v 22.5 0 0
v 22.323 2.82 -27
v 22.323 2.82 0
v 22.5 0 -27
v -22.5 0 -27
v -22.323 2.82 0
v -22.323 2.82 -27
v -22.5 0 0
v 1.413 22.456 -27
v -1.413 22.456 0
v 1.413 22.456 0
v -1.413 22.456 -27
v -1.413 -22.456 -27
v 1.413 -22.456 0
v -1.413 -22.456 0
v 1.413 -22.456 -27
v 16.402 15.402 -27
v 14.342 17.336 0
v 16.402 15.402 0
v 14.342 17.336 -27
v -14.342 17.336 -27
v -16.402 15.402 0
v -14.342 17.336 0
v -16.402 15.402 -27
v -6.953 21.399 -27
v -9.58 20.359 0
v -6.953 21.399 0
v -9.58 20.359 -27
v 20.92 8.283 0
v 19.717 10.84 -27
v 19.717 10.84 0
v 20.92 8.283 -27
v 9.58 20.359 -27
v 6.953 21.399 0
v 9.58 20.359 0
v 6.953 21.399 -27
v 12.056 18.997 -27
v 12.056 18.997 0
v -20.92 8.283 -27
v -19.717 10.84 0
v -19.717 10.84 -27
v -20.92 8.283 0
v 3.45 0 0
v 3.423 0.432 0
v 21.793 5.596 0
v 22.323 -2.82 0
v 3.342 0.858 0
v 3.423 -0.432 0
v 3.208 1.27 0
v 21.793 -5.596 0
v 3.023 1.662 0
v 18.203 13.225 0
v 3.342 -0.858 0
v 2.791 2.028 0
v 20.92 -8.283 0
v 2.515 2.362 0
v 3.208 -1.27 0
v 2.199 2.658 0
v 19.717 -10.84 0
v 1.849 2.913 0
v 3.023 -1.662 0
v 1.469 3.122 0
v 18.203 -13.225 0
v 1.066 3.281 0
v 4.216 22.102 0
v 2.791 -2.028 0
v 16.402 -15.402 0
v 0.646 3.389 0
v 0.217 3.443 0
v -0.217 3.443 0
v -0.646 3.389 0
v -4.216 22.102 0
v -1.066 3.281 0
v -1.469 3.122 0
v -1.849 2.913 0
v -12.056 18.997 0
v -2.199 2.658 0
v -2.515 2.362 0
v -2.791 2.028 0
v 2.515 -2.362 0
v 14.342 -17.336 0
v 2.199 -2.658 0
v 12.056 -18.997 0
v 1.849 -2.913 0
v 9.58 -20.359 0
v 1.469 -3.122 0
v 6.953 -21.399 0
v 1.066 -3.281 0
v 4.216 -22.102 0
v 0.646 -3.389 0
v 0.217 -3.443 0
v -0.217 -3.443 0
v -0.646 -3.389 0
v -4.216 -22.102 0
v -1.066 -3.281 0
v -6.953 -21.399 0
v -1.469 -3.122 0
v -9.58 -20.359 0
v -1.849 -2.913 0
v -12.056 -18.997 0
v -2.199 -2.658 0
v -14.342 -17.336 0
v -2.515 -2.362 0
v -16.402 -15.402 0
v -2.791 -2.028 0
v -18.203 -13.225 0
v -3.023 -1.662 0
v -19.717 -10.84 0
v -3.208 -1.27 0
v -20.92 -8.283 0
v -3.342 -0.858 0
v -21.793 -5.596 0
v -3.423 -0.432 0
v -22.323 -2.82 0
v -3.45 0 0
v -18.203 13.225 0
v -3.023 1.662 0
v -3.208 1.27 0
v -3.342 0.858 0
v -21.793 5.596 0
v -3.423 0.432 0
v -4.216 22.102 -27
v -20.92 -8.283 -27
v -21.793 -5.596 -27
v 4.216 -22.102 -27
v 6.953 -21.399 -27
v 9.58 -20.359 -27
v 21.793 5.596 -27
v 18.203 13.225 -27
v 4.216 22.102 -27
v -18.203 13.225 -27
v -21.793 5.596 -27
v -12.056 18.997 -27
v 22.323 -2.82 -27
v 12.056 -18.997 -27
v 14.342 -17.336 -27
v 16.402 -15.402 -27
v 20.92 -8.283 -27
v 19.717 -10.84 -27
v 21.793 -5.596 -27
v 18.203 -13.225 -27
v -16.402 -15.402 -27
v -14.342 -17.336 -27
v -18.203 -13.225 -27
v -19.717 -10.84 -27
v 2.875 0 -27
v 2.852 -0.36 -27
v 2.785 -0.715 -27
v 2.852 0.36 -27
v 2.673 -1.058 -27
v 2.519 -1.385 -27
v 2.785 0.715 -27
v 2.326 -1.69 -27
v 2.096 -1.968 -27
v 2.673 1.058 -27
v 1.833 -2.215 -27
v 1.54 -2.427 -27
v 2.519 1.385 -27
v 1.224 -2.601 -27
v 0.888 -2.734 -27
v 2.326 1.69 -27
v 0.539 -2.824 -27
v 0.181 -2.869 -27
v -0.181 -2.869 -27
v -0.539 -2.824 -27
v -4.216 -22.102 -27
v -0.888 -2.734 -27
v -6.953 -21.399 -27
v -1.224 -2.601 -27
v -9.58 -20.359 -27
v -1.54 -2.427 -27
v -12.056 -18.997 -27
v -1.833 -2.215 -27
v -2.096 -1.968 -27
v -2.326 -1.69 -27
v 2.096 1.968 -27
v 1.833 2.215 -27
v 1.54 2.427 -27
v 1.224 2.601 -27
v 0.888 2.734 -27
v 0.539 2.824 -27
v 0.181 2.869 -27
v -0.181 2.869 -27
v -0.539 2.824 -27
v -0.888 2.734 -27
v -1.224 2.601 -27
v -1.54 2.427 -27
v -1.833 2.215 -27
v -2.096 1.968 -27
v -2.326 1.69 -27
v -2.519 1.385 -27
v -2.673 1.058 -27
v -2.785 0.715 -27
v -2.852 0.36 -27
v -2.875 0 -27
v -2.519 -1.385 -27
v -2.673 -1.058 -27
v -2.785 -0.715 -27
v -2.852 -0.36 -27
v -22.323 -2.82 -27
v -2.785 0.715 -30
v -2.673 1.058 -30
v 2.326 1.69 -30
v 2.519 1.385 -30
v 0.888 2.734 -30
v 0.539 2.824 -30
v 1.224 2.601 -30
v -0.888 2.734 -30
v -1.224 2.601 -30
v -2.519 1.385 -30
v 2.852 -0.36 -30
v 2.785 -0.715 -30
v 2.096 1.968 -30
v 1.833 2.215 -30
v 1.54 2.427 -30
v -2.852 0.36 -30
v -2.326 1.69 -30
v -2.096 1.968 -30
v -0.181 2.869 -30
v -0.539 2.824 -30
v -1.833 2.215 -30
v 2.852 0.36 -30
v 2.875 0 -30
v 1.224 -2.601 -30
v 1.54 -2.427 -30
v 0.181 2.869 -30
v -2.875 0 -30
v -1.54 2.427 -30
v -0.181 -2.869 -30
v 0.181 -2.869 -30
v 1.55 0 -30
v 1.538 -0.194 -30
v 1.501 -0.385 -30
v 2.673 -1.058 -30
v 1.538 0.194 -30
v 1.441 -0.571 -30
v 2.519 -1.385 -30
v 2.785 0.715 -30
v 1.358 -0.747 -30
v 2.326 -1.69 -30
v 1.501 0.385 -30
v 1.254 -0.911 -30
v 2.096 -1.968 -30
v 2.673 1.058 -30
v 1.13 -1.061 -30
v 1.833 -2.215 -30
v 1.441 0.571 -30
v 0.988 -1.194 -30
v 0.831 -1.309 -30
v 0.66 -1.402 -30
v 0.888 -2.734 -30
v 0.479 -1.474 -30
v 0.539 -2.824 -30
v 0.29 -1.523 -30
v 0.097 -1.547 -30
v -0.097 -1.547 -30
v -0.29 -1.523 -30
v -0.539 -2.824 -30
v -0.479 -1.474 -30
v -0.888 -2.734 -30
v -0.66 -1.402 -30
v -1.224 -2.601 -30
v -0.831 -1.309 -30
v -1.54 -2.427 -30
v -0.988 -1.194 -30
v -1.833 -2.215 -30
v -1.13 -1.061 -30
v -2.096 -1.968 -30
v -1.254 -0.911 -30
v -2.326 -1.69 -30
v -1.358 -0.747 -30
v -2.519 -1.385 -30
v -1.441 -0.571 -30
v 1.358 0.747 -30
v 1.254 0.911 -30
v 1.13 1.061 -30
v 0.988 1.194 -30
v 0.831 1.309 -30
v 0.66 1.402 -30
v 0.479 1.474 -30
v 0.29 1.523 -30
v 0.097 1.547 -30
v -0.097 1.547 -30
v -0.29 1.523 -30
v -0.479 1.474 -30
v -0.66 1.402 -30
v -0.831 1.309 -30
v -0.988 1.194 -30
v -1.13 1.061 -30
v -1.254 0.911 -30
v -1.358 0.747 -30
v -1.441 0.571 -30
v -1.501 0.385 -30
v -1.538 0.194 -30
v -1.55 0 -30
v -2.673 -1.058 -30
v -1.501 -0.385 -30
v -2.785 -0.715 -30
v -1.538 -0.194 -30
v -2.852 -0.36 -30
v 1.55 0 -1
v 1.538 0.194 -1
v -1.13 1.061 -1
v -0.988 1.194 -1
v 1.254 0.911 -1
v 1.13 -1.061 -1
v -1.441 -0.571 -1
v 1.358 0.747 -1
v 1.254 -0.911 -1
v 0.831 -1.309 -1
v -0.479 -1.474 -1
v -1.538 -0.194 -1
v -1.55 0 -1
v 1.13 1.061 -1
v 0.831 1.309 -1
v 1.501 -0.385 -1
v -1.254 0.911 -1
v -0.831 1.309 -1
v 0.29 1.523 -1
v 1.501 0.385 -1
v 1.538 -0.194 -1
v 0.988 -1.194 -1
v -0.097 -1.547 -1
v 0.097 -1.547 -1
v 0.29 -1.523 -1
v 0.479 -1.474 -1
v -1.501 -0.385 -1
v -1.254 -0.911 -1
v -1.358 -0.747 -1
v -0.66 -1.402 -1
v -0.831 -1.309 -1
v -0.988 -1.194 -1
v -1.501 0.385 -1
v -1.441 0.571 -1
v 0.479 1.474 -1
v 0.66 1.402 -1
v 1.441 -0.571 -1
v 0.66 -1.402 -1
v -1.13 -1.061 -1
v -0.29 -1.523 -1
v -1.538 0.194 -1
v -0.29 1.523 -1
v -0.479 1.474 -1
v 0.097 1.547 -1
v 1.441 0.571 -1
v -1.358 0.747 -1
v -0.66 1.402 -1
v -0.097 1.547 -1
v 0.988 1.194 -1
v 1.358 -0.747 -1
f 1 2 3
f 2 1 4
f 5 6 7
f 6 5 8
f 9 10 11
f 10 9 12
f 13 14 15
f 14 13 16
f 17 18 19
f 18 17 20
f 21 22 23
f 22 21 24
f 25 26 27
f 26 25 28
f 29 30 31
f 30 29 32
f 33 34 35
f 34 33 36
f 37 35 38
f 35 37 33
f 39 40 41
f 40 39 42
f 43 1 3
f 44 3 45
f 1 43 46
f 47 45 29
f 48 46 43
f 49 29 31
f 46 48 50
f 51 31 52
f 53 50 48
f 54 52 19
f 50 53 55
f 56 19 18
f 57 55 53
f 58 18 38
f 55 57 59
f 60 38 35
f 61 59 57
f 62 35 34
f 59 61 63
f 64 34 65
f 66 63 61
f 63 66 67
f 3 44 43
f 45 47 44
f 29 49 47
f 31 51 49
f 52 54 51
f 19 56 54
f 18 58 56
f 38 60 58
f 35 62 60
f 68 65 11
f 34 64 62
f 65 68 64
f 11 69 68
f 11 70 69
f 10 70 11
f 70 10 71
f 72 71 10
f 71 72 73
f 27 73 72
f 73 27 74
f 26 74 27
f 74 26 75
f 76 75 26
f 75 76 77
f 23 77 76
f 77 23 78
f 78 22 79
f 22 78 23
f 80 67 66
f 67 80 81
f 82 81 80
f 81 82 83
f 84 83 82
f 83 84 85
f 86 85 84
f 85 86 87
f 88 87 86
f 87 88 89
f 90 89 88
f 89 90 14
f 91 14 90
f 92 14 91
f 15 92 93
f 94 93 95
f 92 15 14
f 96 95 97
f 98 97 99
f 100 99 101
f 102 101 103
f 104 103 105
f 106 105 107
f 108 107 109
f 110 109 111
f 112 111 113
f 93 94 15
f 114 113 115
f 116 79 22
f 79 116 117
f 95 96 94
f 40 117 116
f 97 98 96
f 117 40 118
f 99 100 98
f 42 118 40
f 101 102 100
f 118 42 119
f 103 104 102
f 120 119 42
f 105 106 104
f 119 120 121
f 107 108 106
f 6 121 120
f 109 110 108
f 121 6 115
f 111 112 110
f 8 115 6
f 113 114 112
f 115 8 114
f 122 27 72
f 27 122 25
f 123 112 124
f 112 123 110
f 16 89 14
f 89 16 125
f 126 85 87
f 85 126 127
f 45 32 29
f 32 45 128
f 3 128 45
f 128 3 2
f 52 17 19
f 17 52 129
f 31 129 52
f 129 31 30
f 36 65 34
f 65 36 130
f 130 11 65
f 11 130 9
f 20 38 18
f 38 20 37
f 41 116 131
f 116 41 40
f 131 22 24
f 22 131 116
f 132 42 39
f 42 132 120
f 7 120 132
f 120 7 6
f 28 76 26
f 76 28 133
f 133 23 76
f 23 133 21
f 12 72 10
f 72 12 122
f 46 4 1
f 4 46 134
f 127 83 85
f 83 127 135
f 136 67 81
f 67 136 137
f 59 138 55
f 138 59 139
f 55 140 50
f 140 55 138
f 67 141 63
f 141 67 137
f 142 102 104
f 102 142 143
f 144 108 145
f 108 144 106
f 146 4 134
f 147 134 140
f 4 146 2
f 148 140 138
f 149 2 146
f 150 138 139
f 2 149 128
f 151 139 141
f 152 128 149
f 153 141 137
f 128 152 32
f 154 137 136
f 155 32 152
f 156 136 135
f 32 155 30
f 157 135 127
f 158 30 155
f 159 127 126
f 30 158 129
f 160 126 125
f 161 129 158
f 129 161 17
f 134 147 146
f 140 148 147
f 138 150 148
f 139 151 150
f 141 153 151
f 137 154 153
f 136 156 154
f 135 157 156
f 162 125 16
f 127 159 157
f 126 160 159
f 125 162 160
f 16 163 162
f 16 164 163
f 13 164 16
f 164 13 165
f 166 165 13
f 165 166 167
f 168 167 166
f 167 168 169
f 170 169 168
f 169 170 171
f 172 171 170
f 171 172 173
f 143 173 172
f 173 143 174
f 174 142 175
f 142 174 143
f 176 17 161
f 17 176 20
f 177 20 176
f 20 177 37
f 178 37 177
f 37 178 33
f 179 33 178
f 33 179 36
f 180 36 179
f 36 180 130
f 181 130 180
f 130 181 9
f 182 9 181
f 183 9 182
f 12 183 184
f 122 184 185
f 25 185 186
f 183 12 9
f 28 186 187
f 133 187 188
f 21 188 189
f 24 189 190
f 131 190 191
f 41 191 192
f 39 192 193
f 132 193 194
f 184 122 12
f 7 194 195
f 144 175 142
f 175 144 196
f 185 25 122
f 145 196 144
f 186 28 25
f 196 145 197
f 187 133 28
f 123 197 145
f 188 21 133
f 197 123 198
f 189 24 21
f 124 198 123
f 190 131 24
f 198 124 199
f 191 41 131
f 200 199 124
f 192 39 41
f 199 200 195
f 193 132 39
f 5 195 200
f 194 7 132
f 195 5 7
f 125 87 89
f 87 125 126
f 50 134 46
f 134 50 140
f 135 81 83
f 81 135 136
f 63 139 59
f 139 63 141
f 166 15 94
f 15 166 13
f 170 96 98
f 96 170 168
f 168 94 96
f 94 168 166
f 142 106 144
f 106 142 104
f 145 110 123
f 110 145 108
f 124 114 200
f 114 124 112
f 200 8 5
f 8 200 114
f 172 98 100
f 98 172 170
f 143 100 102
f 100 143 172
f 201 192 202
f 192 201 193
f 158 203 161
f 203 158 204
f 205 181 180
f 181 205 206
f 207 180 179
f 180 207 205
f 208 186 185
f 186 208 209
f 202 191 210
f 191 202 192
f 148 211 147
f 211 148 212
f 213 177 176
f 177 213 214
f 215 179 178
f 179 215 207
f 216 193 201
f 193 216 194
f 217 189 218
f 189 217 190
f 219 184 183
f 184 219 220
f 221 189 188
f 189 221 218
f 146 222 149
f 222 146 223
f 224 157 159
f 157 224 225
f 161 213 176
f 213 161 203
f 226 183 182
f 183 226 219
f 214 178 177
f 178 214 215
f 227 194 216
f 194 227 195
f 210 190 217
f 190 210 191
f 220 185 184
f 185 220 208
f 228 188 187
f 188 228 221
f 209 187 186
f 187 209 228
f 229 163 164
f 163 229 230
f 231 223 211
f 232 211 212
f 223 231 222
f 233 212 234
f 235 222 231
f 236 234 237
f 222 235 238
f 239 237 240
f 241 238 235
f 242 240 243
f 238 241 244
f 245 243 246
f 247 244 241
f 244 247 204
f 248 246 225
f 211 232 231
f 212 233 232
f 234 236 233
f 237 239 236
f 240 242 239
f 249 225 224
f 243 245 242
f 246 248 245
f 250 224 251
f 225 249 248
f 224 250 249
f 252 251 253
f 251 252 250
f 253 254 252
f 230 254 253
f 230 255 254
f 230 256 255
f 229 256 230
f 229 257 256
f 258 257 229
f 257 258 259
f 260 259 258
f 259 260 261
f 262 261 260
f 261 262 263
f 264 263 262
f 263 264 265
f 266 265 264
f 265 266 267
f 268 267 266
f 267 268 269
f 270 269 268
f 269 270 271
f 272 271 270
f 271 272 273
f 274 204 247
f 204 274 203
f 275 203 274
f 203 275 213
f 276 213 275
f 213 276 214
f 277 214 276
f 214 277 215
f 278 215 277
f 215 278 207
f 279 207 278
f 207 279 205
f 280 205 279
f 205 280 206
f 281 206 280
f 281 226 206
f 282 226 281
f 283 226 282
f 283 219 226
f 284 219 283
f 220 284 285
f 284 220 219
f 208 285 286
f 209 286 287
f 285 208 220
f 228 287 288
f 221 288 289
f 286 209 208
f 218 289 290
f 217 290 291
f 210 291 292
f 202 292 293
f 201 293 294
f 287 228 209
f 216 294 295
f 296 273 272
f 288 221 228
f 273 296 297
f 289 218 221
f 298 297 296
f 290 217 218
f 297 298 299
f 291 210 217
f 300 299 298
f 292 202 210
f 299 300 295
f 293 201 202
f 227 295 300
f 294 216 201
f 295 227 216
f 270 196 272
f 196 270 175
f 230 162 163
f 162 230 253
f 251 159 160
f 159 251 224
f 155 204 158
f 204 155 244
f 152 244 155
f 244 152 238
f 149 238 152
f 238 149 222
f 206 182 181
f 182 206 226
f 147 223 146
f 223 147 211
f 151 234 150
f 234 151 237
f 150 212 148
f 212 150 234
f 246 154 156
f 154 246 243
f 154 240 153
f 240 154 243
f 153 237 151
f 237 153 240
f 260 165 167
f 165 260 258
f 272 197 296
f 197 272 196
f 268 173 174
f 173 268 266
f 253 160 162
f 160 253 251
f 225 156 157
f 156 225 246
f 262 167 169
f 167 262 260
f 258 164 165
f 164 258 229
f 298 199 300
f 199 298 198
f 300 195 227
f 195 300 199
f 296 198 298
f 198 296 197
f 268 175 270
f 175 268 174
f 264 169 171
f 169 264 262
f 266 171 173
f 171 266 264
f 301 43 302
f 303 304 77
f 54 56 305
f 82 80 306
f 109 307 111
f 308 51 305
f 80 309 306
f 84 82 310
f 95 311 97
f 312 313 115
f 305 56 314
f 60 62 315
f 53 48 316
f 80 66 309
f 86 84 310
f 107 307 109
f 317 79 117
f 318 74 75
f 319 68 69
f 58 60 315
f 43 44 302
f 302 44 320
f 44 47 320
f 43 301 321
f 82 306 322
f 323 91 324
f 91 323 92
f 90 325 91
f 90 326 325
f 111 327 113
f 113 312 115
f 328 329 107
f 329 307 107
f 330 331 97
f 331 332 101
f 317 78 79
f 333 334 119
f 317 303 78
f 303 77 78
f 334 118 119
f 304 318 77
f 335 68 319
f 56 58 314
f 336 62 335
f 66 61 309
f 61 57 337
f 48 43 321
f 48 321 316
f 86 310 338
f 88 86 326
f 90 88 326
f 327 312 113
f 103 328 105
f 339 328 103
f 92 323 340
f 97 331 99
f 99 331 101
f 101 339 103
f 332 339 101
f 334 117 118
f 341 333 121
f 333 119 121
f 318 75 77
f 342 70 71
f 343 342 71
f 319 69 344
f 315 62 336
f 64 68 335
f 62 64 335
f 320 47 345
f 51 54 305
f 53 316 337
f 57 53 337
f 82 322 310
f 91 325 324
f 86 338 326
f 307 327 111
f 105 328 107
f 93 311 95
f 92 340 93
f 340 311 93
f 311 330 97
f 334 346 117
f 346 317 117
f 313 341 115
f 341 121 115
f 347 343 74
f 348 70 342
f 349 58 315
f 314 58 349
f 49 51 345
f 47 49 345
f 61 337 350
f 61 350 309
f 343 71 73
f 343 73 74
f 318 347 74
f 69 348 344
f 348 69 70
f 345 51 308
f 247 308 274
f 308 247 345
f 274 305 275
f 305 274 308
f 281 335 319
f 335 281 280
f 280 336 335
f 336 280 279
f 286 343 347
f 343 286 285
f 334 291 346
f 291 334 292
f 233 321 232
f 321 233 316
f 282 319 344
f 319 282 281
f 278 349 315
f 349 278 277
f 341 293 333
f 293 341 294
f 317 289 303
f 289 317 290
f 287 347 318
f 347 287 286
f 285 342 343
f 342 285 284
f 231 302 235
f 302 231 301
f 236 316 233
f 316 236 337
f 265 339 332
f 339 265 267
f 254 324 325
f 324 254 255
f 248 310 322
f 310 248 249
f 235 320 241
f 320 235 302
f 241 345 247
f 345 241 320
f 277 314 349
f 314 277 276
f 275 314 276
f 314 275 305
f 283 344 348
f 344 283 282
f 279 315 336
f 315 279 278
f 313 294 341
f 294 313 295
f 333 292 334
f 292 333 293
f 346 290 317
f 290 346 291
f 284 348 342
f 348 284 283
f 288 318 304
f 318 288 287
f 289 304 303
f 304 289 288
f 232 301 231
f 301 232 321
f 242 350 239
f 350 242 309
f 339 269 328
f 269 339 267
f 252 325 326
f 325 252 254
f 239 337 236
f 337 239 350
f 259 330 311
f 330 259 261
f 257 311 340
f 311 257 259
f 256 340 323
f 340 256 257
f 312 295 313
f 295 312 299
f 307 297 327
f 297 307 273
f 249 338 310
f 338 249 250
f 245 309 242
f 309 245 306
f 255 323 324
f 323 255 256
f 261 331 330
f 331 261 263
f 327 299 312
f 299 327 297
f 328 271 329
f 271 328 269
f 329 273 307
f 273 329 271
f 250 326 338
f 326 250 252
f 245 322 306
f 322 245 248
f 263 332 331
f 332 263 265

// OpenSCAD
$fn = 50;

difference() {
	union() {
		translate(v = [0, 0, -27.0]) {
			cylinder(h = 27, r = 22.5);
		}
		#translate(v = [0, 0, -30.0]) {
			cylinder(h = 30, r = 2.875);
		}
	}
	union() {
		translate(v = [0, 0, 0]) {
			rotate(a = [0, 0, 0]) {
				difference() {
					union() {
						translate(v = [0, 0, -30.0]) {
							cylinder(h = 30, r = 1.25);
						}
						translate(v = [0, 0, -1.0]) {
							cylinder(h = 1.0, r1 = 1.55, r2 = 3.45);
						}
						translate(v = [0, 0, -30.0]) {
							cylinder(h = 30, r = 1.55);
						}
						translate(v = [0, 0, -30.0]) {
							cylinder(h = 30, r = 1.25);
						}
					}
					union();
				}
			}
		}
	}
}
